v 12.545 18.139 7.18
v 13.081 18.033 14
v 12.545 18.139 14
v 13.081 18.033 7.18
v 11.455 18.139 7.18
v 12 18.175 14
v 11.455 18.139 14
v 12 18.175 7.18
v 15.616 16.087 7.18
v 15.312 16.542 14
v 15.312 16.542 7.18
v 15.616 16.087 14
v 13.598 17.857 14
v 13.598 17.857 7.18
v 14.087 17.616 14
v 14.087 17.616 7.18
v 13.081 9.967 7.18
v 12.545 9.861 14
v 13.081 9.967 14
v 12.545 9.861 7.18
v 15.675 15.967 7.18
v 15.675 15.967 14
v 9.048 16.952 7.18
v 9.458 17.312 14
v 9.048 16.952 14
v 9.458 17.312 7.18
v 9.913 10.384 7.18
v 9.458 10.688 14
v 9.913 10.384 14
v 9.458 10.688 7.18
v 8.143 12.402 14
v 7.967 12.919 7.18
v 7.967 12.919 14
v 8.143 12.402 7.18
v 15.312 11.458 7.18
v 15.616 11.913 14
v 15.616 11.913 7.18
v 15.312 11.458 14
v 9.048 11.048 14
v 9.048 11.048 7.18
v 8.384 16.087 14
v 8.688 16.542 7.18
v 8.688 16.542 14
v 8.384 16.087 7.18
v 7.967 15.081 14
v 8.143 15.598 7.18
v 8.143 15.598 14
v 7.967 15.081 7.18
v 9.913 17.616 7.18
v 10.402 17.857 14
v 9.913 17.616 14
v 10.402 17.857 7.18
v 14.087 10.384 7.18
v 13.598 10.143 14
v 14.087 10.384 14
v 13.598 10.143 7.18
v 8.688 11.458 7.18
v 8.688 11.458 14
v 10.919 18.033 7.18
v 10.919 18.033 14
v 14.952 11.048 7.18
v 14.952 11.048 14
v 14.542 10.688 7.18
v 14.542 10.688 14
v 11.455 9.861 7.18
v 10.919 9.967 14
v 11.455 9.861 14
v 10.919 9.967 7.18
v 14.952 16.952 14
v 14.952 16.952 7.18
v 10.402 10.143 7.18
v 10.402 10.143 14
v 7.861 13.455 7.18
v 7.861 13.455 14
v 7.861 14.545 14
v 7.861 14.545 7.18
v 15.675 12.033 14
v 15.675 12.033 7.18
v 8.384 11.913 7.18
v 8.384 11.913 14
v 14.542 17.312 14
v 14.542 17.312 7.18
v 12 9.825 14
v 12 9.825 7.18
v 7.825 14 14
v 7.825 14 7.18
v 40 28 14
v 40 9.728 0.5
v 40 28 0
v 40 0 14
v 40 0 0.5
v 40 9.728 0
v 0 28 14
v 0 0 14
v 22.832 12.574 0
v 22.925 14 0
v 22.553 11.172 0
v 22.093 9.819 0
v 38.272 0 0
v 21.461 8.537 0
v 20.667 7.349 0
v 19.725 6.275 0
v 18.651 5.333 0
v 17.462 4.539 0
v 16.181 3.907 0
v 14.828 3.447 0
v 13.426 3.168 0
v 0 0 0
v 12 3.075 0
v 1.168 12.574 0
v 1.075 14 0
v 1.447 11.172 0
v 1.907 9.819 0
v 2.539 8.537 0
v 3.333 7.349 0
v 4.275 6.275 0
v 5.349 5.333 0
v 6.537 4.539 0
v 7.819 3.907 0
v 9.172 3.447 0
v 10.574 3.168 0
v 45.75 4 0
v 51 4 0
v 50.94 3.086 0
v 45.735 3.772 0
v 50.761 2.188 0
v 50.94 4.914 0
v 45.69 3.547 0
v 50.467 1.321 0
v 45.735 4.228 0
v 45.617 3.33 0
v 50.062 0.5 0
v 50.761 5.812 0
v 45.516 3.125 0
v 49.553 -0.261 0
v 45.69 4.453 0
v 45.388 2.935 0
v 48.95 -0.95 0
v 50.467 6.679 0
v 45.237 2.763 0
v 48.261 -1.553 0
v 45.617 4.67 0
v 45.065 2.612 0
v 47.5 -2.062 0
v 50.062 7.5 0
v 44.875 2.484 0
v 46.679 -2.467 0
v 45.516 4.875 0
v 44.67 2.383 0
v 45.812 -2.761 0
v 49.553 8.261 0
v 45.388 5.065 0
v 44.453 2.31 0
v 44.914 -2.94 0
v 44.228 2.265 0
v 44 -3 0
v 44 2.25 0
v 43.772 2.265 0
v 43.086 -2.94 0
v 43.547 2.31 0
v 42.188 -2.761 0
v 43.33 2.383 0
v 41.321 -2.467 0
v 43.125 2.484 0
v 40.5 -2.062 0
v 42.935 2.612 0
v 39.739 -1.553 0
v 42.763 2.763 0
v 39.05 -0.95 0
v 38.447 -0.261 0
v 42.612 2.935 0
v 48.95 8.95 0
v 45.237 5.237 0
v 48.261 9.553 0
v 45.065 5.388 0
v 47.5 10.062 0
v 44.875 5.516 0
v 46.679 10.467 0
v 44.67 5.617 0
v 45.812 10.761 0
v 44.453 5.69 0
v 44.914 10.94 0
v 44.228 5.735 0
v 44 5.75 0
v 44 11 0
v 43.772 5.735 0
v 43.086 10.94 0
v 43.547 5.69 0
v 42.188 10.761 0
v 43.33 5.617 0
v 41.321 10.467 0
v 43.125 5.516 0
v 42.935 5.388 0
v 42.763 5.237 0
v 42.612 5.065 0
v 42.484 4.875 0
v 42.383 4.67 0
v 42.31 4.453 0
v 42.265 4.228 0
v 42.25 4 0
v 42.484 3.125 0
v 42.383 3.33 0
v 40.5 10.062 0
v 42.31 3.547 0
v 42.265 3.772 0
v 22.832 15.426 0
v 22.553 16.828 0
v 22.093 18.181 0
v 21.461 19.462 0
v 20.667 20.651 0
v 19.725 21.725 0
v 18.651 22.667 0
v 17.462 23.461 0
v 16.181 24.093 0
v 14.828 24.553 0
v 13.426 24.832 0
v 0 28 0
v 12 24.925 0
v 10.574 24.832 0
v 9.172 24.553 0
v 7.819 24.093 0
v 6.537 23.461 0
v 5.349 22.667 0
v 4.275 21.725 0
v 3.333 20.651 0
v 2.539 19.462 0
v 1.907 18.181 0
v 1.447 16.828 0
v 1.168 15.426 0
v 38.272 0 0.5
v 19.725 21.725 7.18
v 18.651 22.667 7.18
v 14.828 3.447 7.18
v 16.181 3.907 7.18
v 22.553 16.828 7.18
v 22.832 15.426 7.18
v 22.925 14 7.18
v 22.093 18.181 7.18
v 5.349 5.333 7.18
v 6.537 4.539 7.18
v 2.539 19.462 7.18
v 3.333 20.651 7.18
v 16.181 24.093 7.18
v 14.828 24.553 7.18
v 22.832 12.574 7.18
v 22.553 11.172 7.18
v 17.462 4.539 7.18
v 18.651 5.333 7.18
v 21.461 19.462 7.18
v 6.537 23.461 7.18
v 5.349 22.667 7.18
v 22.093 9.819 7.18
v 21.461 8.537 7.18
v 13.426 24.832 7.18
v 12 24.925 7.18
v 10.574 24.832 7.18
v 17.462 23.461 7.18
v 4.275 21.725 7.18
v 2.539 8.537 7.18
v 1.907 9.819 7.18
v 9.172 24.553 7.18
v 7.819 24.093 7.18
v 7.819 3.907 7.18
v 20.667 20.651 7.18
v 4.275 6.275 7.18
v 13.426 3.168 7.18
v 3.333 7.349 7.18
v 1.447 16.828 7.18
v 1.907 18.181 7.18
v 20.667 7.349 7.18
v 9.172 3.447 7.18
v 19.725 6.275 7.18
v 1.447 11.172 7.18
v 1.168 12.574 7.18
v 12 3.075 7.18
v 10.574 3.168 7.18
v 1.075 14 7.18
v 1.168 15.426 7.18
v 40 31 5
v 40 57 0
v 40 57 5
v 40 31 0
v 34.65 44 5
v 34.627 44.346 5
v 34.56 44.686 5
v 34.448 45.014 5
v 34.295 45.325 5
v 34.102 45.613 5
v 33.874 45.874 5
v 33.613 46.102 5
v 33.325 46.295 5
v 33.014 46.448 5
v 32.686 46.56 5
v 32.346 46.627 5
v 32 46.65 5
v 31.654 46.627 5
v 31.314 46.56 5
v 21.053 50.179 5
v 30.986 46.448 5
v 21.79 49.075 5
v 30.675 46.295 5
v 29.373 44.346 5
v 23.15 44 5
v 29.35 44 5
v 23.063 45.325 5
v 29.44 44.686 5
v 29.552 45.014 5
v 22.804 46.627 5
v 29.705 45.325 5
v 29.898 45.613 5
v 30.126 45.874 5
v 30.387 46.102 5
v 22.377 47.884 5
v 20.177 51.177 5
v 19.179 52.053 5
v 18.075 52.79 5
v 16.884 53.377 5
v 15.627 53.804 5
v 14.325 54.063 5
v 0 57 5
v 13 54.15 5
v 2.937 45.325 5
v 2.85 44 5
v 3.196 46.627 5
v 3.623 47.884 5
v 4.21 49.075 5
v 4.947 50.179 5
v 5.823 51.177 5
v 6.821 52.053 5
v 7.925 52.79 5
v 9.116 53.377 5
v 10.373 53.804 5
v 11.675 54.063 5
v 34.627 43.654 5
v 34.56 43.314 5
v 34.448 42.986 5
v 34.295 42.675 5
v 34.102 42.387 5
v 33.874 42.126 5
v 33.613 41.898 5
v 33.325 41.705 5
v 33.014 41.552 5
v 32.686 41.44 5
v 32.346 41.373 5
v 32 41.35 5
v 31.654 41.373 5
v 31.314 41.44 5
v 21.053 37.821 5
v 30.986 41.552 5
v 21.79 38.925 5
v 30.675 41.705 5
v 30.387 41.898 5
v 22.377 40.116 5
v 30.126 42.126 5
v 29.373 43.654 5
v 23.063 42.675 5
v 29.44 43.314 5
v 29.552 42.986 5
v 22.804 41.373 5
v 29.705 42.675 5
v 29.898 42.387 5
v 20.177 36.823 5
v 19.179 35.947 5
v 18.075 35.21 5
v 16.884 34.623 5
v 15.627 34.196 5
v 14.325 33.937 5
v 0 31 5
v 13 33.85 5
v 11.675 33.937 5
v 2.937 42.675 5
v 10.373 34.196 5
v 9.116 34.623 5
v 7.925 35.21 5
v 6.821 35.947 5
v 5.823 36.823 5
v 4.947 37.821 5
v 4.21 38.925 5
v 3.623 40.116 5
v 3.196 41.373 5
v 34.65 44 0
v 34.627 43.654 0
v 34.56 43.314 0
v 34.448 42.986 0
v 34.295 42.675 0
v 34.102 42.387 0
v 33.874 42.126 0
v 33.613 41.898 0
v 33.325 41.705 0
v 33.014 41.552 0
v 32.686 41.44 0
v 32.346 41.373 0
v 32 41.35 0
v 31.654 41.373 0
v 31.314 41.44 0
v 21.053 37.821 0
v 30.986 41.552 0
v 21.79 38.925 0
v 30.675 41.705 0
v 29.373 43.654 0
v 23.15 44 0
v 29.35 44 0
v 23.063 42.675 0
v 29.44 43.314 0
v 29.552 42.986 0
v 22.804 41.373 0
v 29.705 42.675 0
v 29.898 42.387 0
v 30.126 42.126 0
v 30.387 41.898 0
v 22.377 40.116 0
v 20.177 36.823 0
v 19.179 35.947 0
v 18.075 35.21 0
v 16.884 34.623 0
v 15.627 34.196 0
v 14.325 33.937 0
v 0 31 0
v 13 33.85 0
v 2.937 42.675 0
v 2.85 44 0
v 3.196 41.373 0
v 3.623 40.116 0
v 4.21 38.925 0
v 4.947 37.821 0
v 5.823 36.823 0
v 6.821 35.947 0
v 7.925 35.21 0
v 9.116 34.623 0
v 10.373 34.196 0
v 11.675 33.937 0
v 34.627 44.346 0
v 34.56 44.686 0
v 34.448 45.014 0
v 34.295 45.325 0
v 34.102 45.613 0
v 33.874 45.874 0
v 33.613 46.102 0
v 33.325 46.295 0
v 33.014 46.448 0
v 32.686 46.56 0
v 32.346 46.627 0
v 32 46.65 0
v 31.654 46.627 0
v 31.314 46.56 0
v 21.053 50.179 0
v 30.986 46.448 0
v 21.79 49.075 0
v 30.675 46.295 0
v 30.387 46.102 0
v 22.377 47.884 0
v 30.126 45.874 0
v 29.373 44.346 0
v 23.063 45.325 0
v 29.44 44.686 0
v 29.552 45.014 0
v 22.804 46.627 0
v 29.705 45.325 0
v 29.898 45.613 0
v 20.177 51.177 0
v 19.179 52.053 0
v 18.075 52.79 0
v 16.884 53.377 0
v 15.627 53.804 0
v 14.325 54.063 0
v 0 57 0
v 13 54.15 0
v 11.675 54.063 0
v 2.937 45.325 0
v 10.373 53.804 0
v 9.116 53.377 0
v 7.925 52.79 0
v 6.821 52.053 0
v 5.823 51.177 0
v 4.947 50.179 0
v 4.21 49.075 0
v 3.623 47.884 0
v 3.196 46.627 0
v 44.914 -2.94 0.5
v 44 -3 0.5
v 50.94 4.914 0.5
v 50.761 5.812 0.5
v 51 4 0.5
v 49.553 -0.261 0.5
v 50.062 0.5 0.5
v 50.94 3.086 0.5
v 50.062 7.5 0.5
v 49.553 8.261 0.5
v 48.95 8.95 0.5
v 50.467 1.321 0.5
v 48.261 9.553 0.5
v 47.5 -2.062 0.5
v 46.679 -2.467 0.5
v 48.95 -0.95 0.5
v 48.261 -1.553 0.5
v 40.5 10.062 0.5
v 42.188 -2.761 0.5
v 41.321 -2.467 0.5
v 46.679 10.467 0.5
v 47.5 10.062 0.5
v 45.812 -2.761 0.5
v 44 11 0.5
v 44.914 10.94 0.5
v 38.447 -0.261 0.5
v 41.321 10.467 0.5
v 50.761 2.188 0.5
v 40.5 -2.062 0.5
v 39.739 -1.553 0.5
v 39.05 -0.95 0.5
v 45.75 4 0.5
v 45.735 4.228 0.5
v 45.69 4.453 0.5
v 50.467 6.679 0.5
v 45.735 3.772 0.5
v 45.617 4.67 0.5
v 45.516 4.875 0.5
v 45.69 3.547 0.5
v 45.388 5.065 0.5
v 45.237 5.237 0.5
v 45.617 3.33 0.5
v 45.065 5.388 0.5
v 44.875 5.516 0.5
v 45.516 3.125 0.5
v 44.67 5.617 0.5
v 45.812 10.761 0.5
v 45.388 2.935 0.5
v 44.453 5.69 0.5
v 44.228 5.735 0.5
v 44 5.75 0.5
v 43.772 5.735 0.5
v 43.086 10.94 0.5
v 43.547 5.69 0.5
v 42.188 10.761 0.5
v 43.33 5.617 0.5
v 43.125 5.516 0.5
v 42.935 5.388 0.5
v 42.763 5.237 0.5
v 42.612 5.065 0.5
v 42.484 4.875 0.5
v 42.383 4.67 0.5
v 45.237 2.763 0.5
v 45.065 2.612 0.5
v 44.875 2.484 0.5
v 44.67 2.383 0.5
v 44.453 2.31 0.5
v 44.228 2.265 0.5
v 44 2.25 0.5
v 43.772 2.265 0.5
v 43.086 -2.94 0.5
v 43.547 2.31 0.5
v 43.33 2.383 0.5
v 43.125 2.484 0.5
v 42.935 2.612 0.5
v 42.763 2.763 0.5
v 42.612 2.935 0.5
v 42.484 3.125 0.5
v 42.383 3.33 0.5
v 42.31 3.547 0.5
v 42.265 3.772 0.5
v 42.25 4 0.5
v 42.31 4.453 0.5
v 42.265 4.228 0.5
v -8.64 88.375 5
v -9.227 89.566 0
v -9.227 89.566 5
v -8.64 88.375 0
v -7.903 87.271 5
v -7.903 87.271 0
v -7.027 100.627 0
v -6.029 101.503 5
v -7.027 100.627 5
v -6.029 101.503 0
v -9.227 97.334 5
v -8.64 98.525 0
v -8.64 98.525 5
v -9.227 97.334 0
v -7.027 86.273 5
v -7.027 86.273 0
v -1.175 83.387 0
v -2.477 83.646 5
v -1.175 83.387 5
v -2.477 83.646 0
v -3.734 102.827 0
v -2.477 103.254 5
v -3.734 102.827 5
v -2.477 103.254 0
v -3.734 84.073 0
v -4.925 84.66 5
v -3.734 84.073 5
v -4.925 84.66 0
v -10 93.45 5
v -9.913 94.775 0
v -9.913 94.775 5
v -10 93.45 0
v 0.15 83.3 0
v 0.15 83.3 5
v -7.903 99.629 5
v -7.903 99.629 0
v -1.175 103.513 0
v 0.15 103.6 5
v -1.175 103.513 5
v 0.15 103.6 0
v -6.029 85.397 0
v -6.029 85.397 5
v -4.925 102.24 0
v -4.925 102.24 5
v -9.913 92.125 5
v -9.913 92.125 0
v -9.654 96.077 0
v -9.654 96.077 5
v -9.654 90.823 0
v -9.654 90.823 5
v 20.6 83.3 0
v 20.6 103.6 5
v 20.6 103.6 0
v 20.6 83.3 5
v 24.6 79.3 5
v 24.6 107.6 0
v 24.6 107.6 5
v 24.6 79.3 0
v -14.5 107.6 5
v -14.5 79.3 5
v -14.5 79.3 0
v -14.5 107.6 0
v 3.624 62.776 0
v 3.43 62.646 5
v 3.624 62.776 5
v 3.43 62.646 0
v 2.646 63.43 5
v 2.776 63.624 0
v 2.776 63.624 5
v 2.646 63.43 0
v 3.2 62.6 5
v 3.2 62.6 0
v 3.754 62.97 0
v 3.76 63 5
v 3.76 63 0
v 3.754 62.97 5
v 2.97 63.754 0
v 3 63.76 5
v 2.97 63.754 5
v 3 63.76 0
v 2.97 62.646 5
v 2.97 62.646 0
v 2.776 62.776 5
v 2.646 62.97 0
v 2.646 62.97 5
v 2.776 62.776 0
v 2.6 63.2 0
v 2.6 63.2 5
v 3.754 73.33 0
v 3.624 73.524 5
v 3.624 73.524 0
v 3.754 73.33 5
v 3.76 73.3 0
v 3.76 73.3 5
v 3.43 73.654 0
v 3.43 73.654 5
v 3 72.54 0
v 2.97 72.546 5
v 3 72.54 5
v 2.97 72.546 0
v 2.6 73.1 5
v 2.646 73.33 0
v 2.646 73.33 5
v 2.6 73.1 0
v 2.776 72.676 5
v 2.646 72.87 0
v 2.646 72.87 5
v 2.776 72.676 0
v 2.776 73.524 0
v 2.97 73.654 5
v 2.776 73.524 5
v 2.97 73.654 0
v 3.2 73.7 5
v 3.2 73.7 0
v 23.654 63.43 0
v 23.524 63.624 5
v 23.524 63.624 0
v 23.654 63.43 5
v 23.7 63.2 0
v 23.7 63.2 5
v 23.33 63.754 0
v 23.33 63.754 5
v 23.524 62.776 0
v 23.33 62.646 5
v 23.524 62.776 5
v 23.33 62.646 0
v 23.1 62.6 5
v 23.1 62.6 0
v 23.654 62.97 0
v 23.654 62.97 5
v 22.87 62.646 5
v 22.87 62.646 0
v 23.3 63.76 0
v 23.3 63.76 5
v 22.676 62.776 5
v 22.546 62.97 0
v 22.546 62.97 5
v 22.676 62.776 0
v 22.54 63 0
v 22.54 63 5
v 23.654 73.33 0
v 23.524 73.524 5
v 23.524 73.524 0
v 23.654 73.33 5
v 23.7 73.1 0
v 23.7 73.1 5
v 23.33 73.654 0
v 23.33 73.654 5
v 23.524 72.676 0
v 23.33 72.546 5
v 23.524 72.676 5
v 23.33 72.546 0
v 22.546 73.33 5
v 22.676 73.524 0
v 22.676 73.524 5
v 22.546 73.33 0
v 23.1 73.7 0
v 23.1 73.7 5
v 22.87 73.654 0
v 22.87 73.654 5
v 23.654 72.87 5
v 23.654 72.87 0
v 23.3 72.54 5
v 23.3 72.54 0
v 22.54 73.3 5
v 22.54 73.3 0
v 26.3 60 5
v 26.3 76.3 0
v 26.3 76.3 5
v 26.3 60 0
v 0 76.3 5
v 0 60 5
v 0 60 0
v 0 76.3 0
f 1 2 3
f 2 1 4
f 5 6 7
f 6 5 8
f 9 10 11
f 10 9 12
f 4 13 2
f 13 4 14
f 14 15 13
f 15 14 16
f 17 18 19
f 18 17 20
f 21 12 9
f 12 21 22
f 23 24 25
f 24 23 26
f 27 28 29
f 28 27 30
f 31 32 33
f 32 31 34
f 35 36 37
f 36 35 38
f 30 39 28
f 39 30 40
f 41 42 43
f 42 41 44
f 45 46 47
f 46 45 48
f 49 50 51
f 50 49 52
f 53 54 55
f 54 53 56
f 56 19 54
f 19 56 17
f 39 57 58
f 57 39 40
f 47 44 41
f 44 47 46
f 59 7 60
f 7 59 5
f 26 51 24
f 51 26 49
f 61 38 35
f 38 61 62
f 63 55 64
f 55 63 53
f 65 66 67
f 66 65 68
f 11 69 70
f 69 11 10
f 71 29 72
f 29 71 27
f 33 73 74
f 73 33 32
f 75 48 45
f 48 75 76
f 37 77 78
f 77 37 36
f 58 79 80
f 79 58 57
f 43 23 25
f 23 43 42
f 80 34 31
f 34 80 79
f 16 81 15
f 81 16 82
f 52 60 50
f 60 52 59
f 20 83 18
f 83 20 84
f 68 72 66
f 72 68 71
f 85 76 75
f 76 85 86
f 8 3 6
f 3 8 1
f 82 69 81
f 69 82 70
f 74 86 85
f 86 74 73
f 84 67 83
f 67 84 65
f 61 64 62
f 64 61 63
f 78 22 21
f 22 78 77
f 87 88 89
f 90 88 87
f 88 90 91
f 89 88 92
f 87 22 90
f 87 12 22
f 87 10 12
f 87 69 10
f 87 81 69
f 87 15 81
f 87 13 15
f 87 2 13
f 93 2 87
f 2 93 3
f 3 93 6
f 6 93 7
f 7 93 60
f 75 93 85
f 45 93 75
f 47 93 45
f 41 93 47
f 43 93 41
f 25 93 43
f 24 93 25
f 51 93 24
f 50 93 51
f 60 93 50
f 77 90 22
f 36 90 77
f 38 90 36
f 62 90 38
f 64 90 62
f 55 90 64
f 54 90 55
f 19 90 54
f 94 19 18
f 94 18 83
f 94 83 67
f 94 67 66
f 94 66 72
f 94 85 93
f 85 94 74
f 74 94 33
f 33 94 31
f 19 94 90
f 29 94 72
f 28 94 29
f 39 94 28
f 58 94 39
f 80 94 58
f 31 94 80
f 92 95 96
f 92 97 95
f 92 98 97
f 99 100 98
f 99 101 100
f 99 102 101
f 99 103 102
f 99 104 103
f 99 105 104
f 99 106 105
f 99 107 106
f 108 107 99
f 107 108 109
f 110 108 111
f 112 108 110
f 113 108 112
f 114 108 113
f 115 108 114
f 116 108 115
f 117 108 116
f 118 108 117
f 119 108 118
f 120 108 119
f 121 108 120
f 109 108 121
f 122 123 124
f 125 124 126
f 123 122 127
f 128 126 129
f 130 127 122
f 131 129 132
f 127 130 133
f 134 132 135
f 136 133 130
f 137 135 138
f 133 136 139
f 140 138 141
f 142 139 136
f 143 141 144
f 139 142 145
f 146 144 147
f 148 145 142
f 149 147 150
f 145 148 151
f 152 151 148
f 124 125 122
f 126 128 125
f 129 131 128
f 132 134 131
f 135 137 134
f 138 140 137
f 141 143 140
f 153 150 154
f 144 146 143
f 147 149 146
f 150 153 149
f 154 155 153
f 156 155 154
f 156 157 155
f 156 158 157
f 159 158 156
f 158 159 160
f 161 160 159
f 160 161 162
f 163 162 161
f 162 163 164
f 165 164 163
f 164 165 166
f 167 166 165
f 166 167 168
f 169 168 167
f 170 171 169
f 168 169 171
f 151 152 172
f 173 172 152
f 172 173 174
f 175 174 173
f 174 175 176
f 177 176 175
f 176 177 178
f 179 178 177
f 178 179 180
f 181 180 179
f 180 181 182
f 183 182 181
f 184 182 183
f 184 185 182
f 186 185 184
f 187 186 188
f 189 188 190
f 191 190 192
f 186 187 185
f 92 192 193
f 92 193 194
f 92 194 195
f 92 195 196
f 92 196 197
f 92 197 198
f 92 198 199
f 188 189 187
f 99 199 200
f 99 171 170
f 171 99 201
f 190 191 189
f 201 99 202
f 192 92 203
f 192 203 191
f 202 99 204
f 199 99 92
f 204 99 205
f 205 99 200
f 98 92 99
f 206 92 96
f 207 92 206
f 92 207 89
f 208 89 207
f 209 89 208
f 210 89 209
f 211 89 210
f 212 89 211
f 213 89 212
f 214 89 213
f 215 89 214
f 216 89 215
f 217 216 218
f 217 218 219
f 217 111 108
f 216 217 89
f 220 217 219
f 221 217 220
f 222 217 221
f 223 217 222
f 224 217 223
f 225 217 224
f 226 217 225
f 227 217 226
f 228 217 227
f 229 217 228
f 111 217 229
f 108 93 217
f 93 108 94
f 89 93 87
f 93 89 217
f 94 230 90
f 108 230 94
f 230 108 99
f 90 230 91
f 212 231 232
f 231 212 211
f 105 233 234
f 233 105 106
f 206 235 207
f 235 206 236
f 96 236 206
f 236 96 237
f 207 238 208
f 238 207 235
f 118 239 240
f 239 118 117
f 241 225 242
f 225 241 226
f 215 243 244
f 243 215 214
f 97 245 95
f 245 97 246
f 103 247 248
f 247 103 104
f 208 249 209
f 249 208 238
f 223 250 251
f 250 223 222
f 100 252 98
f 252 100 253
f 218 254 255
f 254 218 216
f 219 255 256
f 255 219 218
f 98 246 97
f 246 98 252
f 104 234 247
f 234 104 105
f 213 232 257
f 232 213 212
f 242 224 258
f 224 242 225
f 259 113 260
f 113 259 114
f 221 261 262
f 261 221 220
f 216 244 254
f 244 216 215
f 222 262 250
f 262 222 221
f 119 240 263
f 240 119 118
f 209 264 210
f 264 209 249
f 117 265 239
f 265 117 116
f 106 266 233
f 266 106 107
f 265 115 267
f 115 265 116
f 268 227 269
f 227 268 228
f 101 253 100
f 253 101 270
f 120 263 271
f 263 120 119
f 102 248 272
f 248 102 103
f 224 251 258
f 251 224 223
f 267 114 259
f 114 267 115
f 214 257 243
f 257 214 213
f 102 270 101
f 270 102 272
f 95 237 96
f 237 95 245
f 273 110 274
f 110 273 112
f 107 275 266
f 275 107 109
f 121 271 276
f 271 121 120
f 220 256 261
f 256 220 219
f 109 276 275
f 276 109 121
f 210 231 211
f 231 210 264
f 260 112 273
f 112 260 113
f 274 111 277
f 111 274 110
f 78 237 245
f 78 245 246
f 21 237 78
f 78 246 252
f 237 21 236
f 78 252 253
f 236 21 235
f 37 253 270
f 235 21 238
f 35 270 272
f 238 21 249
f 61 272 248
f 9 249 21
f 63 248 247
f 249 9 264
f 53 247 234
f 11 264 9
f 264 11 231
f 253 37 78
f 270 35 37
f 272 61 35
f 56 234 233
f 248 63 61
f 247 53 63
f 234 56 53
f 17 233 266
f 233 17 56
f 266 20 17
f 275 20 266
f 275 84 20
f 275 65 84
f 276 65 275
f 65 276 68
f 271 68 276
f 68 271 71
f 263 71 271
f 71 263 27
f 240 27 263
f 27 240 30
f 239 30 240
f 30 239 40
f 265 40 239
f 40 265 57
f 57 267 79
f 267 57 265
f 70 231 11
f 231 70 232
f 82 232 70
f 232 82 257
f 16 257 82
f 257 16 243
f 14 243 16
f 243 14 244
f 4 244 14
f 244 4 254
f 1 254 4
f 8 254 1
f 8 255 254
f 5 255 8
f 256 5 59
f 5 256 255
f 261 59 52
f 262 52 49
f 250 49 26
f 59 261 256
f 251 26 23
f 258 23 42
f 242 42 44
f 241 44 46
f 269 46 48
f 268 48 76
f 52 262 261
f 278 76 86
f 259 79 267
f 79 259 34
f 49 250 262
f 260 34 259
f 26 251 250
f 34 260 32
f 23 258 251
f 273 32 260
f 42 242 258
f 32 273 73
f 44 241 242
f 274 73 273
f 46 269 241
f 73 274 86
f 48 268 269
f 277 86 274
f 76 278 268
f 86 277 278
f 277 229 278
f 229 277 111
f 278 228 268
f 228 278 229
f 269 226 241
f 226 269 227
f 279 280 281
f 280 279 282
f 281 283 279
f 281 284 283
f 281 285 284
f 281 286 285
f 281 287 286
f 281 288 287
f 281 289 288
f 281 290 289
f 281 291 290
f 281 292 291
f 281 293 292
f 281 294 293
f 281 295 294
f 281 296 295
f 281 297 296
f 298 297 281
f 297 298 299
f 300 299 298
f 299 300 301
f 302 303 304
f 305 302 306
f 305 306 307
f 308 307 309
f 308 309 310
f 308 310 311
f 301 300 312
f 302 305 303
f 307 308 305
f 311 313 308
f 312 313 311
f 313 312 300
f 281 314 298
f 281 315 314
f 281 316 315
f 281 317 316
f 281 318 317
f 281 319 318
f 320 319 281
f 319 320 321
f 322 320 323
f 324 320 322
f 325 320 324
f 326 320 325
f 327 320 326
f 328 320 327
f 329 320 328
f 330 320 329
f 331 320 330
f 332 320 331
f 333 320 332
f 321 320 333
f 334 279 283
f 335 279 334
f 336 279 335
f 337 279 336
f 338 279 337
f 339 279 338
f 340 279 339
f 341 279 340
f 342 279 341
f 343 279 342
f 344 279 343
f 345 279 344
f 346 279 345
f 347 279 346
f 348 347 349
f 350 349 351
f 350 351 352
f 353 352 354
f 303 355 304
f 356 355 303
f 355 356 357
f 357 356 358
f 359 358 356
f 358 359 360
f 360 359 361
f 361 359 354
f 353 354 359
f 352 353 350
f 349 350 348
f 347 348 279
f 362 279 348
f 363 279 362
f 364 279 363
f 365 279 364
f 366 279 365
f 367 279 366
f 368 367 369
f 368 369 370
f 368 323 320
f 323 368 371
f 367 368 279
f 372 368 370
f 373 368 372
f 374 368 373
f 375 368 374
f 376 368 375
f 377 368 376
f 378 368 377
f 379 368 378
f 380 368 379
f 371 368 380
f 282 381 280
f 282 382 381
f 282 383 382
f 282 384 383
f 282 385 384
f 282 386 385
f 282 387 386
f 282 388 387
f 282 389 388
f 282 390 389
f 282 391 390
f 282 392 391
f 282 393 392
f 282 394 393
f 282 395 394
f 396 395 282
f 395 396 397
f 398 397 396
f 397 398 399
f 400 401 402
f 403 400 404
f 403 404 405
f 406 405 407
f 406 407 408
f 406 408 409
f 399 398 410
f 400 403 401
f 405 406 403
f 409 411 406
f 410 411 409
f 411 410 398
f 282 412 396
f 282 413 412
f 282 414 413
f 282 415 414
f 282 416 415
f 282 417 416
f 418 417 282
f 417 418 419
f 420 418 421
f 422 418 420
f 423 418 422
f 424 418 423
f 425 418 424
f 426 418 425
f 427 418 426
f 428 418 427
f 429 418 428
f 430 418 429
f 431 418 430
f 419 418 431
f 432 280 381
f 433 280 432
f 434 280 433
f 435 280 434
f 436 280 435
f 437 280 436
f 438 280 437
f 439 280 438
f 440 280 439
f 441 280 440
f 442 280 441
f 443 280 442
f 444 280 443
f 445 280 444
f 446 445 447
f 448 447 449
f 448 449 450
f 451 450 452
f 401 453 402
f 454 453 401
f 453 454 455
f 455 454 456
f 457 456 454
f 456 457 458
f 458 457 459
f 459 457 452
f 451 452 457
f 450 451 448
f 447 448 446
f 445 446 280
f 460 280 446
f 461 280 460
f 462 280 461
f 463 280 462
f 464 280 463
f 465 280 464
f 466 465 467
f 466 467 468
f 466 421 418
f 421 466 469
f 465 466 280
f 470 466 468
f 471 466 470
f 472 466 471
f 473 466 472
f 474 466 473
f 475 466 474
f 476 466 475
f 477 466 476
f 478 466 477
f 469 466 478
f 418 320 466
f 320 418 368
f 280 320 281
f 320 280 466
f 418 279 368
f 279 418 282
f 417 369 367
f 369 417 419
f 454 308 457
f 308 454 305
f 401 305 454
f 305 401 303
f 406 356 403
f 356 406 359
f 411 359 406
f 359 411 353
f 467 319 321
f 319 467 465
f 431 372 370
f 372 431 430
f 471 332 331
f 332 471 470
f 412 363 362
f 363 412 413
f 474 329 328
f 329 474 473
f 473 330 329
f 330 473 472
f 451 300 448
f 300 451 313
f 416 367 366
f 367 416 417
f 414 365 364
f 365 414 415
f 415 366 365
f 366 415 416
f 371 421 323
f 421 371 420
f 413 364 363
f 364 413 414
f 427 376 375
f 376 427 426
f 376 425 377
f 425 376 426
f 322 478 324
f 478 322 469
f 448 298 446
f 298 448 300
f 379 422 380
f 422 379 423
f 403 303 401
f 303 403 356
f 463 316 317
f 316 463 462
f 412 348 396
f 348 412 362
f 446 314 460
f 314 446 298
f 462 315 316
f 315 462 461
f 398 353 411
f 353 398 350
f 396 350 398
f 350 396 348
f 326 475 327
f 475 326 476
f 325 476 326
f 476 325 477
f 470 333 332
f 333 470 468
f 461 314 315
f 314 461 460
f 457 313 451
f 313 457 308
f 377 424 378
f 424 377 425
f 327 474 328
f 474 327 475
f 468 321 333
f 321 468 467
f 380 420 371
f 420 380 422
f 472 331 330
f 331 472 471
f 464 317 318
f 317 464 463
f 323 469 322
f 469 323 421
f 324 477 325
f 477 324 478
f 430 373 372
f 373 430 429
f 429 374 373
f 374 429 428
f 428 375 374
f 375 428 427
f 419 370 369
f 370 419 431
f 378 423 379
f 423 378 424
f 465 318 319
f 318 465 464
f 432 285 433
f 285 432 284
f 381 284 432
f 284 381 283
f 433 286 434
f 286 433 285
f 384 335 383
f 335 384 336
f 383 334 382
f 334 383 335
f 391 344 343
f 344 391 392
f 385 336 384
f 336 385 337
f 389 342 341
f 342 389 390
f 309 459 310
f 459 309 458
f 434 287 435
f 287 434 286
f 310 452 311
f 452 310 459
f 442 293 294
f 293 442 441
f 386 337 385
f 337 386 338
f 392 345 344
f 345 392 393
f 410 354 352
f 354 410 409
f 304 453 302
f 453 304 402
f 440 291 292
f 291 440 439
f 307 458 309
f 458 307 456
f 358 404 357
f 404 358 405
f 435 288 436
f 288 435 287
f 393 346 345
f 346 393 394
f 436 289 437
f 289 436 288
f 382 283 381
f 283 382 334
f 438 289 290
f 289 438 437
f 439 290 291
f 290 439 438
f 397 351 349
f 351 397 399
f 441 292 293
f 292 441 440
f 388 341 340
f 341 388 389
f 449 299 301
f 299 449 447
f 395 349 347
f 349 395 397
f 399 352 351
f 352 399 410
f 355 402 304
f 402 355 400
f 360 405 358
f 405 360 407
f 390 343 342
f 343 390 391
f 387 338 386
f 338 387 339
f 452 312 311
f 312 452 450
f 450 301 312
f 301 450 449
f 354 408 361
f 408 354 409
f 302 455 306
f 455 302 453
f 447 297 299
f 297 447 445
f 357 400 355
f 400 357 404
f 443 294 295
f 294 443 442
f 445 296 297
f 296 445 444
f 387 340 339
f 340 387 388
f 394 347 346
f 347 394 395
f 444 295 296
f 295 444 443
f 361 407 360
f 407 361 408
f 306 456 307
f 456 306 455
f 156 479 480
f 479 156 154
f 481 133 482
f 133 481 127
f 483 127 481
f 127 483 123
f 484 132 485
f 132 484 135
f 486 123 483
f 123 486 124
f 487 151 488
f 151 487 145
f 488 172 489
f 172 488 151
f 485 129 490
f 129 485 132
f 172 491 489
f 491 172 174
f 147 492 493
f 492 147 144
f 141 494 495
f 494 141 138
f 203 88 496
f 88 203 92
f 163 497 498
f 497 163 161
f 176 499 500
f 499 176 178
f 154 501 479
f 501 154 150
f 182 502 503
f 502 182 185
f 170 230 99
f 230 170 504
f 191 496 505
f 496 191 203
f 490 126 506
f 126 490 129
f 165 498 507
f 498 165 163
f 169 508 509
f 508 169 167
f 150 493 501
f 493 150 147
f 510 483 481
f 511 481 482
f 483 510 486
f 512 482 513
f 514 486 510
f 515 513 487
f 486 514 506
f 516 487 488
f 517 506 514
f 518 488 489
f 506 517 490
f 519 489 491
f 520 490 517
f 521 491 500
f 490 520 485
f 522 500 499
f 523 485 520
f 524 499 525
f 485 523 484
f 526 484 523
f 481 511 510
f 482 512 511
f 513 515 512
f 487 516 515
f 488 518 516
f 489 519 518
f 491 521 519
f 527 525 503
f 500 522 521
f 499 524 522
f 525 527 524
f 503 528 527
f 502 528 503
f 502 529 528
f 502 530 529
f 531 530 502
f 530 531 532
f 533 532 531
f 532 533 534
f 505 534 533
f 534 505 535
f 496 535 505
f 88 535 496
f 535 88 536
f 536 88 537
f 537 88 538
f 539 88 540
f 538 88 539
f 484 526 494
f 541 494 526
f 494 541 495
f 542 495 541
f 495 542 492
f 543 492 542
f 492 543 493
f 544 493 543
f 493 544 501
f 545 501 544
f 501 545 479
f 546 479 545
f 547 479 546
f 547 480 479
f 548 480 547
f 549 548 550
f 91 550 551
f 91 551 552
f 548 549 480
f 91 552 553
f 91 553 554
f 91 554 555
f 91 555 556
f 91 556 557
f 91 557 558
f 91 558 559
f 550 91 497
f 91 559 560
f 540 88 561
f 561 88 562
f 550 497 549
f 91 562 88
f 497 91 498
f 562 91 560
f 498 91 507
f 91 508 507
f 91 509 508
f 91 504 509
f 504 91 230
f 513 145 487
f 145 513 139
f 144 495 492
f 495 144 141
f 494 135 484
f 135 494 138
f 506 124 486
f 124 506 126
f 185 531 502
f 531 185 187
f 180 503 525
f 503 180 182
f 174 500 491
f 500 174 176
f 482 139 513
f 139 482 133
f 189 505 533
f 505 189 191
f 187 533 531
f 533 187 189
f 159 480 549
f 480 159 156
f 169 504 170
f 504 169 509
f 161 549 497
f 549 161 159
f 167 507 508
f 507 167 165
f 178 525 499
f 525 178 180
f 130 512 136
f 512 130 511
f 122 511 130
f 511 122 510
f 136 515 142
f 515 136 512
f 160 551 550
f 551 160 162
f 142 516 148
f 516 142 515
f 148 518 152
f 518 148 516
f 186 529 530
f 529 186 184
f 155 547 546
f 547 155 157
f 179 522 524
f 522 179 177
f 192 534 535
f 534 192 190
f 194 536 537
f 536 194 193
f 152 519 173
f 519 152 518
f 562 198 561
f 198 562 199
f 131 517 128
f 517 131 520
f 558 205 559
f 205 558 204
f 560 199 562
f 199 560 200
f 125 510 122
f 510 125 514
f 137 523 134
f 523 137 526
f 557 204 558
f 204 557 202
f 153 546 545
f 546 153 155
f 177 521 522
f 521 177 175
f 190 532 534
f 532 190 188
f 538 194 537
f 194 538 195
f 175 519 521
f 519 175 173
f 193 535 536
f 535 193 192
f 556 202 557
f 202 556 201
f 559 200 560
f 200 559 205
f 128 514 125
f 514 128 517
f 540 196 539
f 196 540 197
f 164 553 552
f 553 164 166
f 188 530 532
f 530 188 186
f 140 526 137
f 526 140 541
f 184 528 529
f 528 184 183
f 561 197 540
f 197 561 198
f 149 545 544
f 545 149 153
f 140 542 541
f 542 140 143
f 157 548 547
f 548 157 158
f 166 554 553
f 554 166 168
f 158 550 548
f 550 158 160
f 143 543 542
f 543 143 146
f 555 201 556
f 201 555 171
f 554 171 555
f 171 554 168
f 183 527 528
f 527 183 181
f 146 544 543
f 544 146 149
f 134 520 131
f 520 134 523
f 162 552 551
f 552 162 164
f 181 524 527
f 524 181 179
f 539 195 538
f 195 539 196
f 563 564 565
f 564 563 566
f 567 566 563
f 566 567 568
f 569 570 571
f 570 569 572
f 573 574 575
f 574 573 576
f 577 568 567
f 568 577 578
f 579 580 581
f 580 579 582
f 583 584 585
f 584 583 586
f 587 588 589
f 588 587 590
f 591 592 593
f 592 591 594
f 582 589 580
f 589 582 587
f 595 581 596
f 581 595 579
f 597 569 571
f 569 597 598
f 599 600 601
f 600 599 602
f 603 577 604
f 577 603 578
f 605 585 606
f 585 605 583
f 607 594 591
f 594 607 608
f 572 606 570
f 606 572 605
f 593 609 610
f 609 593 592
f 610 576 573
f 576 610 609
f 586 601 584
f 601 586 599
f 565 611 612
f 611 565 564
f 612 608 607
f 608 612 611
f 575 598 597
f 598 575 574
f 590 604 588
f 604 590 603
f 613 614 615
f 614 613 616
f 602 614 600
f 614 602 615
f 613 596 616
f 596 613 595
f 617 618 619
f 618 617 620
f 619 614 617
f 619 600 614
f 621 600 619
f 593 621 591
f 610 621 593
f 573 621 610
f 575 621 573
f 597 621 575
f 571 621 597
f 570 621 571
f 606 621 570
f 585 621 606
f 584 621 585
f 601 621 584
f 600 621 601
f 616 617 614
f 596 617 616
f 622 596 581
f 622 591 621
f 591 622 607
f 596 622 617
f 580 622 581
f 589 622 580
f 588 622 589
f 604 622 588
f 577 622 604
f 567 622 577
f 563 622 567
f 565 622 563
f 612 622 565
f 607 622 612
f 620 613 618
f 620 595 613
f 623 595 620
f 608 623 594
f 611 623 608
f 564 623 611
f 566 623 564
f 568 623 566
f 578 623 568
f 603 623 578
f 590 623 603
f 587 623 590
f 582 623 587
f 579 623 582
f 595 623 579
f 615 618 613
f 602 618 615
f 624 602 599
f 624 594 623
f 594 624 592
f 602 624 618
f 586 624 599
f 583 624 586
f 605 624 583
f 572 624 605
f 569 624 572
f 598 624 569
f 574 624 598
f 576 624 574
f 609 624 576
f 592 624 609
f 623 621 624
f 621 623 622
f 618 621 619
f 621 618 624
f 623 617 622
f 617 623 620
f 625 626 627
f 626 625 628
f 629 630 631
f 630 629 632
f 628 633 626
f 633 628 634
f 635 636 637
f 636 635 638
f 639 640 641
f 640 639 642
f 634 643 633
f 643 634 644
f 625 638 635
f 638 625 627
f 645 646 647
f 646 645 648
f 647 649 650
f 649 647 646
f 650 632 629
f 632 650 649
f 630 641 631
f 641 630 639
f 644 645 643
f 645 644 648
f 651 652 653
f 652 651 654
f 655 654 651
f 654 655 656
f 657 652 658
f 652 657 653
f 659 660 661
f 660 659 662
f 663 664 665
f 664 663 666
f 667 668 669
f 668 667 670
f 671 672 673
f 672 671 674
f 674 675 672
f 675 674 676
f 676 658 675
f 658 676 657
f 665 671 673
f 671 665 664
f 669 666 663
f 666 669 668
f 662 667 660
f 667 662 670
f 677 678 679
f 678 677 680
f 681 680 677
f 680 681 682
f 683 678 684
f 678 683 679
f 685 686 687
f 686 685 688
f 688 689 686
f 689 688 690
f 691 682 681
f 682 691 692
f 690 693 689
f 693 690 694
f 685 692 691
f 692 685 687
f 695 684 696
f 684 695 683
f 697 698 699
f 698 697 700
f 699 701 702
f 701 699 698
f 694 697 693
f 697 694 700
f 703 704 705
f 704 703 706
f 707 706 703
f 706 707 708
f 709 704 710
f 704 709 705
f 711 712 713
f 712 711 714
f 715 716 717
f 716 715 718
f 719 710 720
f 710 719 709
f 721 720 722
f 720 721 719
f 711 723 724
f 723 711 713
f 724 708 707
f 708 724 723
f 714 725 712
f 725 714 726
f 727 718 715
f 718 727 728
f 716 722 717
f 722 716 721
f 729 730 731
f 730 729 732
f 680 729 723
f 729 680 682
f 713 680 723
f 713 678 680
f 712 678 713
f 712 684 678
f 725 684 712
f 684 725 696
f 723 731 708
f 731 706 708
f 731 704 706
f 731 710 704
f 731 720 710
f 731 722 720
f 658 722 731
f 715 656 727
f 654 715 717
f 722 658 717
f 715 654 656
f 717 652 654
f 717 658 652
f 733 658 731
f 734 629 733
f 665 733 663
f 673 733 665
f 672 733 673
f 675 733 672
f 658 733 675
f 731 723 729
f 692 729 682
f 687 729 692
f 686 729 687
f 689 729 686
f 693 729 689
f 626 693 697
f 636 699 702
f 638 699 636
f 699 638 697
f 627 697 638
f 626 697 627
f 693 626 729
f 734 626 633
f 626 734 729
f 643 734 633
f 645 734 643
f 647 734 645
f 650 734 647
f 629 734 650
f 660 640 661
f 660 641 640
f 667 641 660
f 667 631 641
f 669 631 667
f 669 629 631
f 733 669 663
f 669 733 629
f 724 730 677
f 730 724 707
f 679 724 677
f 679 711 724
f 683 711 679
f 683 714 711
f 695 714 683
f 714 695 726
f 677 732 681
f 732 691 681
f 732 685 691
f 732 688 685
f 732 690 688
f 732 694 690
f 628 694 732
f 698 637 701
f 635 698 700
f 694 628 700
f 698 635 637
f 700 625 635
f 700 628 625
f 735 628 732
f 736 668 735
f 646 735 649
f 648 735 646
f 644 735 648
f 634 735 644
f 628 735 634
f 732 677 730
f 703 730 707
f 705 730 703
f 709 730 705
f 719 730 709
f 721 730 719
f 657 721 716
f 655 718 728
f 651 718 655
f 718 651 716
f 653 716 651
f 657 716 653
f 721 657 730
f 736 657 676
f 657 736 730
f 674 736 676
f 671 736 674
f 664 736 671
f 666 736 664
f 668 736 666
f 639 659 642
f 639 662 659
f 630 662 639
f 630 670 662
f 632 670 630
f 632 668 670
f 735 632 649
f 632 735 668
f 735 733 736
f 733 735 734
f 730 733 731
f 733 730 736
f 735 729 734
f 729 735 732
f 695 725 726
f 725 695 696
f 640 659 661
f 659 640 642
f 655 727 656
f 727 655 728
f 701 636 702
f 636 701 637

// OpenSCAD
// Gen-CU — fit coupon: O20/O5 THROUGH pockets at carrier thickness (test on a steel offcut), 608 seat,
// D-flat bore, gap shim, and one bobbin-bay slice (bobbin footprint + bay_clear) to test former fit.
include <parameters.scad>;
$fn = 48;
// D-flat keyed bore: flat faces +X (angle 0 = magnet pocket 0 = index notch)
module dflat_bore(h) {
    intersection() {
        cylinder(d=shaft_bore, h=h);
        translate([-shaft_bore, -shaft_bore, 0]) cube([shaft_bore + dflat_x, 2*shaft_bore, h]);
    }
}
module sector_2d(r_in, r_out, ang) {
    polygon([
        for (a = [-ang/2 : ang/24 : ang/2]) [r_in*cos(a), r_in*sin(a)],
        for (a = [ang/2 : -ang/24 : -ang/2]) [r_out*cos(a), r_out*sin(a)]
    ]);
}
module footprint_2d() { offset(r=wall) sector_2d(coil_id_r, coil_od_r, span_deg); }
module hub_2d()       { offset(delta=-coil_core_inset) sector_2d(coil_id_r, coil_od_r, span_deg); }

block_w = 40; block_d = 28; block_h = 14;
difference() {
    cube([block_w, block_d, block_h]);
    translate([12, block_d/2, -0.02]) cylinder(d=bearing_d, h=bearing_h);
    translate([12, block_d/2, -0.1]) dflat_bore(block_h + 1);
}
translate([0, block_d + 3, 0]) difference() {
    cube([40, 26, carrier_thick]);
    translate([13, 13, -0.1]) cylinder(d=large_pocket_d, h=carrier_thick + 0.2);
    translate([32, 13, -0.1]) cylinder(d=small_pocket_d, h=carrier_thick + 0.2);
}
translate([block_w + 4, 4, 0])
    difference() {
        cylinder(d=spacer_pad_od, h=gap_spacer_h);
        translate([0, 0, -0.1]) cylinder(d=spacer_pad_id, h=gap_spacer_h + 0.2);
    }
// KEYHOLE pole pocket test (2026-10-18): O20 disc pocket + N42 20x10x5 block pocket merged (hull), as on the arcs.
// Drop a disc and a block in: they must push each other onto the two far walls and sit flat. Block pocket has corner reliefs.
translate([0, block_d + 3 + 26 + 3 + block_radial + block_pocket_clear + 6 + 3 + max(block_tangential, large_pocket_d) / 2 + 4, 0]) difference() {
    translate([-14.5, -(max(block_tangential, large_pocket_d) / 2 + 4), 0]) cube([14.5 + abs(block_R_list[0] - R_large) + block_radial / 2 + 4, max(block_tangential, large_pocket_d) + 8, carrier_thick]);
    translate([0, 0, -0.1]) {
        translate([disc_pocket_shift * sign(block_R_list[0] - R_large), 0, 0]) cylinder(d=large_pocket_d, h=carrier_thick + 0.2);
        translate([disc_pocket_shift * sign(block_R_list[0] - R_large), -(block_tangential + block_pocket_clear)/2, 0])
            cube([abs(block_R_list[0] - R_large) - abs(block_pocket_shift) + (block_radial + block_pocket_clear)/2 - disc_pocket_shift * sign(block_R_list[0] - R_large), block_tangential + block_pocket_clear, carrier_thick + 0.2]);
    }
}
// N42 20x10x5 BLOCK through-pocket test (block + block_pocket_clear, 1.2 mm corner reliefs), 2026-10-16
translate([0, block_d + 3 + 26 + 3, 0]) difference() {
    cube([block_tangential + block_pocket_clear + 6, block_radial + block_pocket_clear + 6, carrier_thick]);
    translate([3, 3, -0.1]) cube([block_tangential + block_pocket_clear, block_radial + block_pocket_clear, carrier_thick + 0.2]);
    for (x = [3.2, 3 + block_tangential + block_pocket_clear - 0.2], y = [3.2, 3 + block_radial + block_pocket_clear - 0.2])
        translate([x, y, -0.1]) cylinder(d=1.2, h=carrier_thick + 0.2, $fn=16);
}
